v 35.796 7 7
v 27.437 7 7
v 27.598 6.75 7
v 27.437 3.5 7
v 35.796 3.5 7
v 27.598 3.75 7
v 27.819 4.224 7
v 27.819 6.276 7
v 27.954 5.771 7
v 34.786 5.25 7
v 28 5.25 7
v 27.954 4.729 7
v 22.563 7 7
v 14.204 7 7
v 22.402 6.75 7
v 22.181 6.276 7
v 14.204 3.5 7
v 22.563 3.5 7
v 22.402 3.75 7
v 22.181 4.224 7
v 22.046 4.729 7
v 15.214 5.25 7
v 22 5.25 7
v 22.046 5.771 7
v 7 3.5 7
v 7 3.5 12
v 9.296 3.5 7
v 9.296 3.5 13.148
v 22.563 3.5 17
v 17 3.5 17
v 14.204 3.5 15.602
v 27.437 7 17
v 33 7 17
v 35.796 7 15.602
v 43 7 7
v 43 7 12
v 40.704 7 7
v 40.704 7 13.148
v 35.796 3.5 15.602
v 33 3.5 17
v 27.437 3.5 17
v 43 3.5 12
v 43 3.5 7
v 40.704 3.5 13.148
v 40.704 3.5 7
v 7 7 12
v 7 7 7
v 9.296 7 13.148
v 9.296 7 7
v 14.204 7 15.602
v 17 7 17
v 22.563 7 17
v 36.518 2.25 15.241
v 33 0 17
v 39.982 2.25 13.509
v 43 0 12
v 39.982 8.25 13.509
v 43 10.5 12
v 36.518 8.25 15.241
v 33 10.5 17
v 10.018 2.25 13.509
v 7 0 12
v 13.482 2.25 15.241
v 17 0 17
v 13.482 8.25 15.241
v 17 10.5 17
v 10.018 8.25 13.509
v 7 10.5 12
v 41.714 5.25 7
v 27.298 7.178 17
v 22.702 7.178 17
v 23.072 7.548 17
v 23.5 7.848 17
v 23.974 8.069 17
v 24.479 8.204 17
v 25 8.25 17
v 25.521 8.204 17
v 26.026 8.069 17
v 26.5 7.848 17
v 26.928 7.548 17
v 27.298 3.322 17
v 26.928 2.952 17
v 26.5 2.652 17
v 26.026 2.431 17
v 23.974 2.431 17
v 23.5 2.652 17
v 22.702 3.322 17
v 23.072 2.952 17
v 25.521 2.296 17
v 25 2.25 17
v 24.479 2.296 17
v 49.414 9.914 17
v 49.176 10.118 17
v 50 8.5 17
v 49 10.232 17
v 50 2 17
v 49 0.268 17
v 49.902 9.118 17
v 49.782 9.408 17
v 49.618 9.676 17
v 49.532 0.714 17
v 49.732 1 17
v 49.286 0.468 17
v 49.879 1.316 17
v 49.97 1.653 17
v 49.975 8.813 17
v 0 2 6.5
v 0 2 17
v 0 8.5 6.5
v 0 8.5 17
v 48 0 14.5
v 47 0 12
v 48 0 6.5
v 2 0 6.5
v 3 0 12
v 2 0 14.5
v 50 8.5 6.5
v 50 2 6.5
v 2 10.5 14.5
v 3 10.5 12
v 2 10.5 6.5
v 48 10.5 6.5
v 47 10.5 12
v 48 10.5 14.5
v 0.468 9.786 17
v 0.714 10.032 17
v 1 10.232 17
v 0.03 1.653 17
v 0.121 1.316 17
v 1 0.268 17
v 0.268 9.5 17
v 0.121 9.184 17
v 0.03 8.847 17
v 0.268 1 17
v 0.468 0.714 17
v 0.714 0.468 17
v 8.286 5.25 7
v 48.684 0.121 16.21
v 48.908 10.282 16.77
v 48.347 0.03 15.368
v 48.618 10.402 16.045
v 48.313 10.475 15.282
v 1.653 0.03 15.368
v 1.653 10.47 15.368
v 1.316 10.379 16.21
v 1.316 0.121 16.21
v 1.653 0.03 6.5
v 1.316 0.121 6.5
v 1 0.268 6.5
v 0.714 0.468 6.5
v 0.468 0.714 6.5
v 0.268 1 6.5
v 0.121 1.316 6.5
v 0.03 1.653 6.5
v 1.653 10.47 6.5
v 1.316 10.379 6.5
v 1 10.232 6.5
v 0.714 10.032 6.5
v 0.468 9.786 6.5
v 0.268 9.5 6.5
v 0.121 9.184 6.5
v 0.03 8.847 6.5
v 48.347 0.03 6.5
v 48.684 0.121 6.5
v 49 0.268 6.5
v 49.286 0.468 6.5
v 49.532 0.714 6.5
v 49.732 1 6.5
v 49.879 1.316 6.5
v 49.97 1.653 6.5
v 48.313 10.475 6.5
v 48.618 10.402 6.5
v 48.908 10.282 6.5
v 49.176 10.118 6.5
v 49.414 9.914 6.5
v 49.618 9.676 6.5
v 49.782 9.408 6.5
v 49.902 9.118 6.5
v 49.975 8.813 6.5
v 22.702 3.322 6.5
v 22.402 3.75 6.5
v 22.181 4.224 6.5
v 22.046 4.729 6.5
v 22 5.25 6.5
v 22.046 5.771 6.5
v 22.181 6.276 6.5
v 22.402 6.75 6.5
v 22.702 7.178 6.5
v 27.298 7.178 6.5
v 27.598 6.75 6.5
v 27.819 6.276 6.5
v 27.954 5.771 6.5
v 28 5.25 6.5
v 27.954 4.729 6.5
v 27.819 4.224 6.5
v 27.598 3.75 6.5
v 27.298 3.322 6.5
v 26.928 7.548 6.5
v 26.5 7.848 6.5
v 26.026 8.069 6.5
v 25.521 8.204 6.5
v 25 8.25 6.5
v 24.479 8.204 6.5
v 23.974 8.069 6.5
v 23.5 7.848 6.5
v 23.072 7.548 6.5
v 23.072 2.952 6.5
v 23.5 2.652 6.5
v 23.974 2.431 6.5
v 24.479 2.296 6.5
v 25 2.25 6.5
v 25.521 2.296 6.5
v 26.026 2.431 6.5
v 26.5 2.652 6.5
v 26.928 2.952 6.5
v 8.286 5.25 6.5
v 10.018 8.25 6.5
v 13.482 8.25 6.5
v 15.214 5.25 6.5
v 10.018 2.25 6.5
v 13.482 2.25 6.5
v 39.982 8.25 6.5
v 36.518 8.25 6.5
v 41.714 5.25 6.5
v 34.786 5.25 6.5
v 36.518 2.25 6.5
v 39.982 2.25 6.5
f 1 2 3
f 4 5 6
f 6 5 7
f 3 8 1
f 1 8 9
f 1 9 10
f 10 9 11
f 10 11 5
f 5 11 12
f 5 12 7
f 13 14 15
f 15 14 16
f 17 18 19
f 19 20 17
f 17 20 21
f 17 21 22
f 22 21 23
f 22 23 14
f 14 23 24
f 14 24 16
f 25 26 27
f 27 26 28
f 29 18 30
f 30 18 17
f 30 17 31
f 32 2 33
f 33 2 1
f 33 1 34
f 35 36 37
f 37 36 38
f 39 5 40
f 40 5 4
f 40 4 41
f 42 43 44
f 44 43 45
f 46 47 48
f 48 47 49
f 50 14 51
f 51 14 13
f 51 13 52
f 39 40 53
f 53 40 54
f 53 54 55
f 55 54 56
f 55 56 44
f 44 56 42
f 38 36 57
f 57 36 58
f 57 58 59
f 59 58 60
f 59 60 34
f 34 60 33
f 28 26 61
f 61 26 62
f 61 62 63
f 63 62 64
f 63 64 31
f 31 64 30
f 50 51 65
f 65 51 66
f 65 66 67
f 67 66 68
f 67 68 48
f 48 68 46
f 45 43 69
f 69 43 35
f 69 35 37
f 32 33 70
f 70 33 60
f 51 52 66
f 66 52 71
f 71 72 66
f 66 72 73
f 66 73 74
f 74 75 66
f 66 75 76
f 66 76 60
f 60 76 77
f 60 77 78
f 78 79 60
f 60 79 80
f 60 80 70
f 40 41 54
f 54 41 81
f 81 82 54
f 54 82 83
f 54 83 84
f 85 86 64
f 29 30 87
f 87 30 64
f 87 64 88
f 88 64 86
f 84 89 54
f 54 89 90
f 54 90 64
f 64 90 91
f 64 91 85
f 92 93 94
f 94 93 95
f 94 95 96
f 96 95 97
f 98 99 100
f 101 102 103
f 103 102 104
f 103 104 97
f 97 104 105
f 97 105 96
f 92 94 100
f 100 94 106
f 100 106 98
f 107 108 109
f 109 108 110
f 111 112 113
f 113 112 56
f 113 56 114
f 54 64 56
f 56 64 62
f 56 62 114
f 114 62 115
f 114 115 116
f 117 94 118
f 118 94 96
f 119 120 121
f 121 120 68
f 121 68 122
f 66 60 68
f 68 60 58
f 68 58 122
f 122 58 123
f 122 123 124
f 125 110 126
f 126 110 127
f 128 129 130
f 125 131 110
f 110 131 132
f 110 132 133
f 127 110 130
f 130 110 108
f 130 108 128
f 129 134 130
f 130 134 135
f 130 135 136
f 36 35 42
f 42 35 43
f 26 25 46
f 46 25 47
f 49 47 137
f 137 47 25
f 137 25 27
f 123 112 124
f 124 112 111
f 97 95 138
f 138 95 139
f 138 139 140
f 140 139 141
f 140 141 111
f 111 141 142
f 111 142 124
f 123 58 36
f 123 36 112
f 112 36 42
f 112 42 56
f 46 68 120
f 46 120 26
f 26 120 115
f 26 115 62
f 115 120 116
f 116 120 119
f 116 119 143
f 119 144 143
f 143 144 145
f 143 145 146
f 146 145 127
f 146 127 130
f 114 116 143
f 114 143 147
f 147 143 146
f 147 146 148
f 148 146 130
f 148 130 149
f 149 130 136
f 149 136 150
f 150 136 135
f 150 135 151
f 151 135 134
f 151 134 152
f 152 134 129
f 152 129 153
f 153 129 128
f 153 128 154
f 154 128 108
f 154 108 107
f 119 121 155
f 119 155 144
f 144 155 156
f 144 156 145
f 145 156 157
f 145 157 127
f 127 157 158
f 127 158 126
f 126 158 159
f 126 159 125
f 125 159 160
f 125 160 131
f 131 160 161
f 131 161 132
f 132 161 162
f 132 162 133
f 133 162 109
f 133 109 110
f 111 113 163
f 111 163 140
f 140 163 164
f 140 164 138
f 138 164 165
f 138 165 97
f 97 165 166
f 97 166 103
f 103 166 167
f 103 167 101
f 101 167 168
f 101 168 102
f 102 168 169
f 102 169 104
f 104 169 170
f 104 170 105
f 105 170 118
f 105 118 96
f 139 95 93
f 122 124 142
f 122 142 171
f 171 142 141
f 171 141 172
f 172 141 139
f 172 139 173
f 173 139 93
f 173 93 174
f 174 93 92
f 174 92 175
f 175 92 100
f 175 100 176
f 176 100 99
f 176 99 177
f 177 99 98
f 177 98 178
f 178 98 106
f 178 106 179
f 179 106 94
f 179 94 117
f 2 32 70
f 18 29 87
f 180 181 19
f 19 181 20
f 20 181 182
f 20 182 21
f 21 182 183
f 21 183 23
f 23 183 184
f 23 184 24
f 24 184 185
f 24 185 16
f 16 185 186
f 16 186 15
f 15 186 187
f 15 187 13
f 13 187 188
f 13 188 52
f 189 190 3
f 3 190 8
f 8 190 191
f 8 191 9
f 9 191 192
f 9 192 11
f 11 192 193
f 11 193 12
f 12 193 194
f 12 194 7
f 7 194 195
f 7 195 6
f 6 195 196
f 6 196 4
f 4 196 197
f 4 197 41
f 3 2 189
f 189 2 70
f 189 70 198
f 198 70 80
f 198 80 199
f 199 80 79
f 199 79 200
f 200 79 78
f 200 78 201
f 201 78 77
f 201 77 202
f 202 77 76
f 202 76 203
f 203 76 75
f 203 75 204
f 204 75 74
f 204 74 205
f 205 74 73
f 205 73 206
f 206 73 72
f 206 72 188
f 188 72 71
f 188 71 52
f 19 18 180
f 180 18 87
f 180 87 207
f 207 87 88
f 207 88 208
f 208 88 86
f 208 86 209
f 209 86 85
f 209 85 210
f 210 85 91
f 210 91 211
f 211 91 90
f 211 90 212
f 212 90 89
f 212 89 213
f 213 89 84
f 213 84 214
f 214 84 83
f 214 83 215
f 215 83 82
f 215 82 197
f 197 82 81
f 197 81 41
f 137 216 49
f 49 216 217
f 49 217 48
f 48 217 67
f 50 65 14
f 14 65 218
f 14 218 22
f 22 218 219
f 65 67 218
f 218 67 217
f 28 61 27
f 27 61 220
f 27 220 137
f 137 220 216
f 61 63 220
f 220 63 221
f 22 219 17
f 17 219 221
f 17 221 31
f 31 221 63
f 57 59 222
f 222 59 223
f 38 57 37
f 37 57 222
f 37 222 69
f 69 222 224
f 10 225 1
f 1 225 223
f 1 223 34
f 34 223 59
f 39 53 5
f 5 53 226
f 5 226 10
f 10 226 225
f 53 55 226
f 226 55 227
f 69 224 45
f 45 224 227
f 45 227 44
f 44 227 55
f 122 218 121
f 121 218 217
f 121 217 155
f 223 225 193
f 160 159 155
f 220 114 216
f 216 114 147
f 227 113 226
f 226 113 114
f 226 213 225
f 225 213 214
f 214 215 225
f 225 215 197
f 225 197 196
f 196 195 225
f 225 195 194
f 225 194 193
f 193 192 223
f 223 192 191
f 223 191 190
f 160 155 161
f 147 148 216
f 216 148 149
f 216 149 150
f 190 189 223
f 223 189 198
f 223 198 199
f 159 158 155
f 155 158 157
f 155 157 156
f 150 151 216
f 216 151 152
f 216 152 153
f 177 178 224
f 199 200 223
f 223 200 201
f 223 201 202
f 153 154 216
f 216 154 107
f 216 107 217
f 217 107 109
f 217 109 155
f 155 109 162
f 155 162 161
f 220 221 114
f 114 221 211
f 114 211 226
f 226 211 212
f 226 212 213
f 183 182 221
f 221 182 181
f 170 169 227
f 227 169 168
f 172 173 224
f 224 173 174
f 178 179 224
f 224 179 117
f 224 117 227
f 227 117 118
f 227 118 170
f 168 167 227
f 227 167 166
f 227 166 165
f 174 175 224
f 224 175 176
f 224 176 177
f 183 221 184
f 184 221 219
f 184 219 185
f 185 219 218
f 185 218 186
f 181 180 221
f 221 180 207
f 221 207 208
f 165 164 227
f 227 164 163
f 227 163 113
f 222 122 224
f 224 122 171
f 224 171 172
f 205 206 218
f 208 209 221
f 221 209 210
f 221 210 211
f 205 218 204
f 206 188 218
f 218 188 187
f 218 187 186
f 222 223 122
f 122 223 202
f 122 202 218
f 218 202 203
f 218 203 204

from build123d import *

# Parameters (mm, degrees)
SKETCH_1_W          = 50
SKETCH_1_H          = 10.5
EXTRUDE_1_DEPTH     = 17
SKETCH_2_W          = 36
SKETCH_2_H          = 3.5
CUT_EXTRUDE_1_DEPTH = 10
CUT_EXTRUDE_2_DEPTH = 10.5
SKETCH_4_W          = 3.5
SKETCH_4_H          = 6.5
CUT_EXTRUDE_3_DEPTH = 6.5
FILLET_1_R          = 2
SKETCH_6_R          = 3
SKETCH_6_R_2        = 1.75
CUT_EXTRUDE_4_DEPTH = 18
CUT_EXTRUDE_5_DEPTH = 11
CUT_EXTRUDE_6_DEPTH = 3
SKETCH_9_W          = 58.421136066
SKETCH_9_H          = 24.245128271
CUT_EXTRUDE_7_DEPTH = 7.5


with BuildPart() as part:
    # ｽｹｯﾁ1 → ﾎﾞｽ - 押し出し1 (new body)
    with BuildSketch(Plane.XY):
        with Locations((25, 5.25)):
            Rectangle(SKETCH_1_W, SKETCH_1_H)
    extrude(amount=EXTRUDE_1_DEPTH)

    # ｽｹｯﾁ2 → ｶｯﾄ - 押し出し1 (cut)
    with BuildSketch(Plane.XY.offset(17)):
        with Locations((25, 5.25)):
            Rectangle(SKETCH_2_W, SKETCH_2_H)
    extrude(amount=-CUT_EXTRUDE_1_DEPTH, mode=Mode.SUBTRACT)

    # ｽｹｯﾁ3 → ｶｯﾄ - 押し出し2 (cut)
    with BuildSketch(Plane.XZ):
        Polygon((1, 17), (3, 12), (7, 12), (17, 17), align=None)
        Polygon((33, 17), (43, 12), (47, 12), (49, 17), align=None)
    extrude(amount=-CUT_EXTRUDE_2_DEPTH, mode=Mode.SUBTRACT)

    # ｽｹｯﾁ4 → ｶｯﾄ - 押し出し3 (cut)
    with BuildSketch(Plane(origin=(0, 0, 0), x_dir=(-1, 0, 0), z_dir=(0, 0, -1))):
        with Locations((-2.15, 5.25)):
            Rectangle(SKETCH_4_W, SKETCH_4_H)
        with Locations((-47.85, 5.25)):
            Rectangle(SKETCH_4_W, SKETCH_4_H)
    extrude(amount=-CUT_EXTRUDE_3_DEPTH, mode=Mode.SUBTRACT)

    # ﾌｨﾚｯﾄ1
    fillet_1_edges = [part.edges().sort_by_distance(p)[0] for p in [
        (0, 0, 8.5),
        (0, 10.5, 8.5),
        (50, 0, 8.5),
        (50, 10.5, 8.5),
    ]]
    fillet(fillet_1_edges, radius=FILLET_1_R)

    # ｽｹｯﾁ6 → ｶｯﾄ - 押し出し4 (cut, through all)
    with BuildSketch(Plane(origin=(0, 0, 0), x_dir=(-1, 0, 0), z_dir=(0, 0, -1))):
        with Locations((-25, 5.25)):
            Circle(SKETCH_6_R)
        with Locations((-11.75, 5.25)):
            Circle(SKETCH_6_R_2)
        with Locations((-38.25, 5.25)):
            Circle(SKETCH_6_R_2)
    extrude(amount=-CUT_EXTRUDE_4_DEPTH, mode=Mode.SUBTRACT)

    # ｽｹｯﾁ7 → ｶｯﾄ - 押し出し5 (cut, through all)
    with BuildSketch(Plane.XY.offset(7)):
        Polygon((34.785898385, 5.25), (36.517949192, 2.25), (39.982050808, 2.25), (41.714101615, 5.25), (39.982050808, 8.25), (36.517949192, 8.25), align=None)
        Polygon((13.482050808, 8.25), (15.214101615, 5.25), (13.482050808, 2.25), (10.017949192, 2.25), (8.285898385, 5.25), (10.017949192, 8.25), align=None)
    extrude(amount=CUT_EXTRUDE_5_DEPTH, mode=Mode.SUBTRACT)

    # ｽｹｯﾁ8 → ｶｯﾄ - 押し出し6 (cut)
    with BuildSketch(Plane.XY.offset(7)):
        Polygon((36.517949192, 2.25), (39.982050808, 2.25), (41.714101615, 5.25), (39.982050808, 8.25), (36.517949192, 8.25), (34.785898385, 5.25), align=None)
        Polygon((15.214101615, 5.25), (13.482050808, 2.25), (10.017949192, 2.25), (8.285898385, 5.25), (10.017949192, 8.25), (13.482050808, 8.25), align=None)
    extrude(amount=-CUT_EXTRUDE_6_DEPTH, mode=Mode.SUBTRACT)

    # ｽｹｯﾁ9 → ｶｯﾄ - 押し出し7 (cut, through all)
    with BuildSketch(Plane(origin=(0, 0, 6.5), x_dir=(-1, 0, 0), z_dir=(0, 0, -1))):
        with Locations((-24.970881096, 5.810967265)):
            Rectangle(SKETCH_9_W, SKETCH_9_H)
    extrude(amount=CUT_EXTRUDE_7_DEPTH, mode=Mode.SUBTRACT)


solid = part.part
